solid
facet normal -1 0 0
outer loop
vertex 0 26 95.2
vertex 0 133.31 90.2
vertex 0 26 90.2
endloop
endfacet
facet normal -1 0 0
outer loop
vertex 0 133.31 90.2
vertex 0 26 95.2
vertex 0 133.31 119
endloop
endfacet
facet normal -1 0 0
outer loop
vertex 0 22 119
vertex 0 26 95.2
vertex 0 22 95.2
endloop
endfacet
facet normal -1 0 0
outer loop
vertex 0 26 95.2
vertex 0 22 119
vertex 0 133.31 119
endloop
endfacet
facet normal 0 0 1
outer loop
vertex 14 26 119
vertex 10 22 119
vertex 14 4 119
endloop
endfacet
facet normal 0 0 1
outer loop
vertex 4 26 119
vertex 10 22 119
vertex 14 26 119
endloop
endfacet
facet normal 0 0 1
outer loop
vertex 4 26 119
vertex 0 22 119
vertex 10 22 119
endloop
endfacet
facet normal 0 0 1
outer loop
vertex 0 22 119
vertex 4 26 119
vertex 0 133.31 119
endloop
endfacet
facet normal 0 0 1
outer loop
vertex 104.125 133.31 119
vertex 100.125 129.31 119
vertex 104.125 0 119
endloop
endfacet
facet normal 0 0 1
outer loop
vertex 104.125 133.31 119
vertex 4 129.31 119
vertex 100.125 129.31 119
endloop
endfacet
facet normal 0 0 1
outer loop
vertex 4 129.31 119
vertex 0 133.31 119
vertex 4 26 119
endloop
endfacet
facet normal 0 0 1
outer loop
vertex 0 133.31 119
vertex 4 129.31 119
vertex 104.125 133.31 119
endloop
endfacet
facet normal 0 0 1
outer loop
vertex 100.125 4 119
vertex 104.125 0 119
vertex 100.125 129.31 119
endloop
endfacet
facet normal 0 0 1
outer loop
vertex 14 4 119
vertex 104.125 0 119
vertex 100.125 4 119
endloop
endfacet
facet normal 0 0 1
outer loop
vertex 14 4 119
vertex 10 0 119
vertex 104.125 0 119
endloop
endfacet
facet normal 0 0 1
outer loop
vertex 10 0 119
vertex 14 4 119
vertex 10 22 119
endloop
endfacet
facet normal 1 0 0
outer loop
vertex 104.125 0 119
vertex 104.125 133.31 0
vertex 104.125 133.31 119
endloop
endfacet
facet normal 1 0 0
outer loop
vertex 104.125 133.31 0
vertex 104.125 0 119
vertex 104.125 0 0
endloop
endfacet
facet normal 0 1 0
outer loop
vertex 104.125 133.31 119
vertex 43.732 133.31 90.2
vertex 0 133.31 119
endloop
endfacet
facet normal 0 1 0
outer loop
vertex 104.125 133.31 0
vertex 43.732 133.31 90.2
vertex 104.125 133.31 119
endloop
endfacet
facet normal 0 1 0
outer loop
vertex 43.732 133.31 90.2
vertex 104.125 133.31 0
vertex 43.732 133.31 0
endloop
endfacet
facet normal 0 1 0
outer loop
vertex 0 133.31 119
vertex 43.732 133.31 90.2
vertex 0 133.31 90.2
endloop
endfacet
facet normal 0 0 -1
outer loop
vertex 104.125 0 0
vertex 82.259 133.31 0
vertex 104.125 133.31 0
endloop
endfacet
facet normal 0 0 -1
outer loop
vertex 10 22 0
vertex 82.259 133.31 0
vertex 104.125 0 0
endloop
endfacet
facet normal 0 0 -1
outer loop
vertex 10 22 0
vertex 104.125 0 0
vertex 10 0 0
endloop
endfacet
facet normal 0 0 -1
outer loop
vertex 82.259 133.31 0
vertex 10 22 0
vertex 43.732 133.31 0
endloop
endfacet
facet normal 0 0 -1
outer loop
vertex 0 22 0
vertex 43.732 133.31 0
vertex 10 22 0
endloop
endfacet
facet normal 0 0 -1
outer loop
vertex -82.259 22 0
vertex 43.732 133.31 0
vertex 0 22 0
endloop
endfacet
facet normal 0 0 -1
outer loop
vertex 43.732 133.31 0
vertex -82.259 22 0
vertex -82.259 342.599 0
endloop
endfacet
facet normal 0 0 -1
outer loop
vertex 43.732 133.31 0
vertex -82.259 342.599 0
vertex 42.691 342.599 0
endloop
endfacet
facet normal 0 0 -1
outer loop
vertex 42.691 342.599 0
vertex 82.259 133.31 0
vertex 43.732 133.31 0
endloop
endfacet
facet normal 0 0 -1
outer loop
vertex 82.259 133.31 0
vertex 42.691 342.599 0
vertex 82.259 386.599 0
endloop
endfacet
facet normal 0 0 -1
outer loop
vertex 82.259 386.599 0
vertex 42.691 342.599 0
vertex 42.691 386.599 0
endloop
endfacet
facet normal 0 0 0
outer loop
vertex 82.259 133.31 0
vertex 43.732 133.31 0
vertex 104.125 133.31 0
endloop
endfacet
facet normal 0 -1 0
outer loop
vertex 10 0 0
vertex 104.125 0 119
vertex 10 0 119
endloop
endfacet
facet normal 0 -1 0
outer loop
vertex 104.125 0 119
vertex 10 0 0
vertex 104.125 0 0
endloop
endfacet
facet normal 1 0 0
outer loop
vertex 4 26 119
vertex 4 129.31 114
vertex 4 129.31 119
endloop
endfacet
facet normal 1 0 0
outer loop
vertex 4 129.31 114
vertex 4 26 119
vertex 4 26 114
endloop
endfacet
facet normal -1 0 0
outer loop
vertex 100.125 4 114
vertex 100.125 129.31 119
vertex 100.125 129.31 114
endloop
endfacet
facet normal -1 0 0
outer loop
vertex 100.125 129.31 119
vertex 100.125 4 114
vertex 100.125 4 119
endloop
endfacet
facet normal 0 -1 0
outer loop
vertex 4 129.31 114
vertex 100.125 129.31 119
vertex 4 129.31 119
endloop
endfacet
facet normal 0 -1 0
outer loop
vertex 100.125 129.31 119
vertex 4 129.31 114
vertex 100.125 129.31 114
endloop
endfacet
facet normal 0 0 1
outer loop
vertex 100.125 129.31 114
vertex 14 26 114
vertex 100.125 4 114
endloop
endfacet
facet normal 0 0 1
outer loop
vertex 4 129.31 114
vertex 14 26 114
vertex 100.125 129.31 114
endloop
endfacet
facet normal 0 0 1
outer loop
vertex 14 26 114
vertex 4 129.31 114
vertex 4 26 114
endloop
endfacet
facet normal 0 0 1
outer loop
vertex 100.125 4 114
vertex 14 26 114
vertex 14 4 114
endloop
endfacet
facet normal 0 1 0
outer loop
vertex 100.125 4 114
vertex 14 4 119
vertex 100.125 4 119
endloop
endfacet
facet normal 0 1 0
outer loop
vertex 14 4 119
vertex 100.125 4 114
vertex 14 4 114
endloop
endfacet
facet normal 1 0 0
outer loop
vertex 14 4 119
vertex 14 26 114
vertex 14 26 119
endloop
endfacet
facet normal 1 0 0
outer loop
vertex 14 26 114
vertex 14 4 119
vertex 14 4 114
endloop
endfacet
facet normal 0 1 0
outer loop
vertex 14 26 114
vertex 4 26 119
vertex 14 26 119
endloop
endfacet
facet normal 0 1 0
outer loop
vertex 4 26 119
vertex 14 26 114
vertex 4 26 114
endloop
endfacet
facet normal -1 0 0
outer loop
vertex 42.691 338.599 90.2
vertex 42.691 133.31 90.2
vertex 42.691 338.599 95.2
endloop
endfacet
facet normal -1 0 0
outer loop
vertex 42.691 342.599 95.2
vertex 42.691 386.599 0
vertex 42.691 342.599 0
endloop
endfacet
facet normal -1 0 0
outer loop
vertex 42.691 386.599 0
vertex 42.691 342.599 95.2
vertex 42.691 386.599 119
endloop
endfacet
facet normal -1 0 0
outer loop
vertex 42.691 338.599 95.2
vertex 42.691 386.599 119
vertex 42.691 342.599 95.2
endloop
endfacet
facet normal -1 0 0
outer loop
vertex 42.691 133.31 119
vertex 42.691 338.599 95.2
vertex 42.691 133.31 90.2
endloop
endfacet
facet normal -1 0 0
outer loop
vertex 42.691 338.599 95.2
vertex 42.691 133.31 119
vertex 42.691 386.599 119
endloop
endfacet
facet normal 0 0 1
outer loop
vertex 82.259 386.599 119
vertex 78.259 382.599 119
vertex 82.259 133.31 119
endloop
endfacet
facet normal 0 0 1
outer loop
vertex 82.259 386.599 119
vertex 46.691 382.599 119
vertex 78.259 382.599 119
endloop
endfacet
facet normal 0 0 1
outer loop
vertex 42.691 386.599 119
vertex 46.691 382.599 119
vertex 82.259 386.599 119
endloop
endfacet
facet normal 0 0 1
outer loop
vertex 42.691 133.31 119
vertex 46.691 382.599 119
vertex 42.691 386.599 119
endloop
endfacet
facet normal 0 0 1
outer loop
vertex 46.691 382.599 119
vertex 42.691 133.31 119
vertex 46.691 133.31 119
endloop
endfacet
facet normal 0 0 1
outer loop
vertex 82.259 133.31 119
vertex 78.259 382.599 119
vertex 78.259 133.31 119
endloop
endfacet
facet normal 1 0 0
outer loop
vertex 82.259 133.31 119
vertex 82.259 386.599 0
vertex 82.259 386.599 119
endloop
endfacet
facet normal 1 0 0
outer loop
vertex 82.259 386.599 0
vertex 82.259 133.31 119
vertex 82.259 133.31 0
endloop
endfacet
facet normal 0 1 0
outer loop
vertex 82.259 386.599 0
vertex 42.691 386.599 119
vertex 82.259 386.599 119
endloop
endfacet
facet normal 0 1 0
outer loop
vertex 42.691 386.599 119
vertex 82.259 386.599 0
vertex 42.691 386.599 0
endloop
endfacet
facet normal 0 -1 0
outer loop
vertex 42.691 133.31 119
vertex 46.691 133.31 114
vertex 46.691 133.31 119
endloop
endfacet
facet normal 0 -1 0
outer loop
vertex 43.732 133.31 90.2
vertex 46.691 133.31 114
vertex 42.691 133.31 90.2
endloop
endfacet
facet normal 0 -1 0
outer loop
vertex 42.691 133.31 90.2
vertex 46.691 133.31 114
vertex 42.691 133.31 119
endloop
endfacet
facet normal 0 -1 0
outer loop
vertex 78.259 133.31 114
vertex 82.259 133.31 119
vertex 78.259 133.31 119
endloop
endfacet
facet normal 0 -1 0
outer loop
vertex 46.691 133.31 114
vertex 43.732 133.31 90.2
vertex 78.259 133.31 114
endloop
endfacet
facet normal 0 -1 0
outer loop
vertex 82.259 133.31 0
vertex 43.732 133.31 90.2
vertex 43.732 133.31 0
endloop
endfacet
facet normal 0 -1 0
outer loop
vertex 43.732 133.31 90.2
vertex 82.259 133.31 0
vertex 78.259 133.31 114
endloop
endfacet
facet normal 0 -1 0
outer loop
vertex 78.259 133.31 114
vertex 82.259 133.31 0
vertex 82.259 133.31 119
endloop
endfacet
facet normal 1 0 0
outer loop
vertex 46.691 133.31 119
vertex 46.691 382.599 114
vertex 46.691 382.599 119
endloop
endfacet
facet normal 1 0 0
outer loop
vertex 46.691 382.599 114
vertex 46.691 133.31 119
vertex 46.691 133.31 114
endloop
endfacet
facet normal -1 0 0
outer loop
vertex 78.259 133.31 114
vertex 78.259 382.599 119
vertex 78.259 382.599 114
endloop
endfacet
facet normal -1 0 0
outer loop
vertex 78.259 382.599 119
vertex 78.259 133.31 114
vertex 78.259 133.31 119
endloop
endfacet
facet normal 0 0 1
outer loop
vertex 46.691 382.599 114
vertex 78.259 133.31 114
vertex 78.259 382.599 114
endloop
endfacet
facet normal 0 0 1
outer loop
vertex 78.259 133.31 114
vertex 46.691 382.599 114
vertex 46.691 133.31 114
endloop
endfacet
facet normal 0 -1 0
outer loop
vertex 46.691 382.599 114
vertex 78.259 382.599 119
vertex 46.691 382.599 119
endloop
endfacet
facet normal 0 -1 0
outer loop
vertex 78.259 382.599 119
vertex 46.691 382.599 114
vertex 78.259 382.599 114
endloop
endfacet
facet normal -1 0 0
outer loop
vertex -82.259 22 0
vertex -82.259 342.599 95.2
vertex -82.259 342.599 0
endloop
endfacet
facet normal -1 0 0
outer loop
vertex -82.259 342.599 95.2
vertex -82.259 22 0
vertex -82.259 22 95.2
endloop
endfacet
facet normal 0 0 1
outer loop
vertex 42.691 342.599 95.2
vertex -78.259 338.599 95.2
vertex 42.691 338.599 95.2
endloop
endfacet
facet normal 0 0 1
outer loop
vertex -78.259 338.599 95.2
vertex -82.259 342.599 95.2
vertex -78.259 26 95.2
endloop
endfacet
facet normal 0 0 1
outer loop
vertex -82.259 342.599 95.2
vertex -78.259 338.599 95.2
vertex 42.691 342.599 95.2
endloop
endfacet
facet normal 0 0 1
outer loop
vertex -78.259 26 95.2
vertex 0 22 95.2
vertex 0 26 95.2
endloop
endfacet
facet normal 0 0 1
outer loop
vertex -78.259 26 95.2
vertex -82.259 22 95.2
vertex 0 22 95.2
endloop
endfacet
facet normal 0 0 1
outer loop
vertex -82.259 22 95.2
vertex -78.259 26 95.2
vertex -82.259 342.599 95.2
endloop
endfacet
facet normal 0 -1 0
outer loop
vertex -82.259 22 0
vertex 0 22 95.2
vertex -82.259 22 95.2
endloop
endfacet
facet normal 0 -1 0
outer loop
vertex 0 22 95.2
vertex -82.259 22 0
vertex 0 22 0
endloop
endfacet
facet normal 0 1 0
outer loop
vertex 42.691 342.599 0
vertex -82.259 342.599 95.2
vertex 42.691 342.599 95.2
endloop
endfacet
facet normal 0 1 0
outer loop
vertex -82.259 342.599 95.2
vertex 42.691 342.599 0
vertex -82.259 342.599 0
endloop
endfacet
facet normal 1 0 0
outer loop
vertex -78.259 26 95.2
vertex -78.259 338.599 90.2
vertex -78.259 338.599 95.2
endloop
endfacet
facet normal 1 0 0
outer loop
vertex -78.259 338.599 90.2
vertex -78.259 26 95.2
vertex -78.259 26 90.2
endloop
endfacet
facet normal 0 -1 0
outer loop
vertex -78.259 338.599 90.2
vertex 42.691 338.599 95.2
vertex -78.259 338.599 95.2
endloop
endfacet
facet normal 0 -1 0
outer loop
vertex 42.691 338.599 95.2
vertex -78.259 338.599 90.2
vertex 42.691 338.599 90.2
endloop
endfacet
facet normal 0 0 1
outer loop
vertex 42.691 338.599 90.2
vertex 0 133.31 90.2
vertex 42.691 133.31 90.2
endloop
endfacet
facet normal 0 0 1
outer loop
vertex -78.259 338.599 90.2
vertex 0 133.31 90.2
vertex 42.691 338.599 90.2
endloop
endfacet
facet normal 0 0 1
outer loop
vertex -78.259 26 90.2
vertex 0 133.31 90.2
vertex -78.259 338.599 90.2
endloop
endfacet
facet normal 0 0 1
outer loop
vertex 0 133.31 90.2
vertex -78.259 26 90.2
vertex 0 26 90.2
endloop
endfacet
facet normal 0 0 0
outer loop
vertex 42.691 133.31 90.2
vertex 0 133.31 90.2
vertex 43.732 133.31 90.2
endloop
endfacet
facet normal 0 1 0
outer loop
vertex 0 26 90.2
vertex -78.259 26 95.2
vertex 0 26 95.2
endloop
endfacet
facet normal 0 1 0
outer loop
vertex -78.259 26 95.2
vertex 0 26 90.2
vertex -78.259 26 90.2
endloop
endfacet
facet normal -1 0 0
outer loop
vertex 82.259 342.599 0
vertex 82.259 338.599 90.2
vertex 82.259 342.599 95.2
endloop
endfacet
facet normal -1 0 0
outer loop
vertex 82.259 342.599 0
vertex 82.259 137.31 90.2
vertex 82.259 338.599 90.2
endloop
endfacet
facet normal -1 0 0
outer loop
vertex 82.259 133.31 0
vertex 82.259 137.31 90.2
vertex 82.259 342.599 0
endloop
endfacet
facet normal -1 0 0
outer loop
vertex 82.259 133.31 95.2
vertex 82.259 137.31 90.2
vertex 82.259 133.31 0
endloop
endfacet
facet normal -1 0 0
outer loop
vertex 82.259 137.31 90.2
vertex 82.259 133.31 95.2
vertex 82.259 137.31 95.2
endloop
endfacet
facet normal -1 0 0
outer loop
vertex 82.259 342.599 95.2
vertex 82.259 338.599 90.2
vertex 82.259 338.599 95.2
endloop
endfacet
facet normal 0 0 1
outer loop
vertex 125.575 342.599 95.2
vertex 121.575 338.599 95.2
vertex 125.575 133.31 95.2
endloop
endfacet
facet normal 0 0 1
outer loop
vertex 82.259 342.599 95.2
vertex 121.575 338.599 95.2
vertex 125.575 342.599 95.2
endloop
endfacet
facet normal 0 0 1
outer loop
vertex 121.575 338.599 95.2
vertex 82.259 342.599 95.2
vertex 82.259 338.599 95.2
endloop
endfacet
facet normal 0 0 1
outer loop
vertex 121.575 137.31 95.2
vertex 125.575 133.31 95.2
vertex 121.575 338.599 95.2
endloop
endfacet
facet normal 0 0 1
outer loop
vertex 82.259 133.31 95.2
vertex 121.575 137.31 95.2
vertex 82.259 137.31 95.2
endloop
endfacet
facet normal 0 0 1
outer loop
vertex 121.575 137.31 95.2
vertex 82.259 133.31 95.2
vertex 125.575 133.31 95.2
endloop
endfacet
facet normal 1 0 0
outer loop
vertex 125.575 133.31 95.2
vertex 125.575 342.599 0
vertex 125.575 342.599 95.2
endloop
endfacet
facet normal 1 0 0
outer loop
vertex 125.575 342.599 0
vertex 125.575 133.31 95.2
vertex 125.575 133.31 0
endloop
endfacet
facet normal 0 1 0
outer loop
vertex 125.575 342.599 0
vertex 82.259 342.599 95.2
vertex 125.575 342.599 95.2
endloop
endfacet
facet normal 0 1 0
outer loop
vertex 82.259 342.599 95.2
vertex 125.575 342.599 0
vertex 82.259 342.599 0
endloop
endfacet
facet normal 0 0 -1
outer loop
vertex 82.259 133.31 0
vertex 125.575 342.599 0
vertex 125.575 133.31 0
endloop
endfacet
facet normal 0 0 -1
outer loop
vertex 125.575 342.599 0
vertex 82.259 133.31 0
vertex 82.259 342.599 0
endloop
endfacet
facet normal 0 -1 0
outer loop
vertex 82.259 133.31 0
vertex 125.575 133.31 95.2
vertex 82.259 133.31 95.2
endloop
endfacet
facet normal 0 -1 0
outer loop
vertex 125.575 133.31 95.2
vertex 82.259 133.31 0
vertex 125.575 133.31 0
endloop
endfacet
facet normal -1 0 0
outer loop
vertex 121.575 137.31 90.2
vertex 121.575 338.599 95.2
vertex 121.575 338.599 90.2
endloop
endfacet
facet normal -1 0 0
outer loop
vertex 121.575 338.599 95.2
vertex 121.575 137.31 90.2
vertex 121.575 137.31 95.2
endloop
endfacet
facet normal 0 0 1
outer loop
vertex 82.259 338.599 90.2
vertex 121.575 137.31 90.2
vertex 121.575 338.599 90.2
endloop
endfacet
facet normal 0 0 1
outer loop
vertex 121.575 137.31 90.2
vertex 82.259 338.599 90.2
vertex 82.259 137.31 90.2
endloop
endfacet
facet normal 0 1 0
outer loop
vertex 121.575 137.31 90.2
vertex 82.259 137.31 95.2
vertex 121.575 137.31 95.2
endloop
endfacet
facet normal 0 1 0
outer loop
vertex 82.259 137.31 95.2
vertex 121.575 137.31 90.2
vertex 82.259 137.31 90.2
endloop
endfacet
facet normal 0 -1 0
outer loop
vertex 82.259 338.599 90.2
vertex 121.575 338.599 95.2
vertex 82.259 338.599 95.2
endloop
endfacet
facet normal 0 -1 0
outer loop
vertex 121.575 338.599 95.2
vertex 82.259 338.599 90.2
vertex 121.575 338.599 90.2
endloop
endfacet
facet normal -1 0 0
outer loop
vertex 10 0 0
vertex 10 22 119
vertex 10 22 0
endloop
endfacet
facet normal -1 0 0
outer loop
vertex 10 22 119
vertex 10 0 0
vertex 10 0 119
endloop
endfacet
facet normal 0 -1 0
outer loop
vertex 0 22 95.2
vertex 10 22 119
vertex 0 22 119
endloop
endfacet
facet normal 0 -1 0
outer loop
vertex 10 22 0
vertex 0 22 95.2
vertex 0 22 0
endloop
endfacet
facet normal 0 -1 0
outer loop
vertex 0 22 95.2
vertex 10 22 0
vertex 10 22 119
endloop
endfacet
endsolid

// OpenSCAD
height = 119;
faceWidth = 104.125;
faceDepth = 133.31;
spineDepth = faceDepth * 1.90;
spineWidth = faceWidth * 0.38;
spineOffset = faceWidth * 0.41;
stackRadius = 22;
stackRadiusTop = 15;
stackHeight = height * 3.683229814;
capHeight = height * 0.1552795031;

sideHeight = height*.8;
leftWidth = faceWidth * 1.21;
rightWidth = faceWidth * .416;

crownWidth = 4;
crownHeight = 5;

//cube(size=[width, depth, height], center=false);
//translate([-width * leftWidthScale, 0, 0]) 
//	#cube(size=[width*leftWidthScale, depth, height], center=false);

difference(){
	coreStructure();
		cube(size=[10, stackRadius, height], center=false);
}

module coreStructure(){
	union(){
		faceBuilding();
		translate([spineOffset, faceDepth, 0]) 
			spine();
		// translate([spineOffset - stackRadius, faceDepth + spineDepth-stackRadius, 0]) 
		// 	stack();
		// translate([spineOffset + spineWidth+ stackRadius , faceDepth + spineDepth-stackRadius, 0]) 
		// 	stack();
		translate([-spineOffset - spineWidth, stackRadius, 0]) 
			leftBuilding();
		translate([+spineOffset + spineWidth, faceDepth, 0]) 
			rightBuilding();
	}
}

module faceBuilding(){
	union(){
		difference(){
			cube(size=[faceWidth, faceDepth, height], center=false);
			translate([crownWidth, crownWidth, height-crownHeight]) 
				cube(size=[faceWidth-crownWidth*2, faceDepth-crownWidth*2, crownHeight*2], center=false);		
		}
		translate([crownWidth, crownWidth, 0]) 
				cube(size=[10, stackRadius, height], center=false);
	}
}

module spine(){
	difference(){
		cube(size=[spineWidth, spineDepth, height], center=false);	
		translate([crownWidth, 0, height-crownHeight]) 
			cube(size=[spineWidth-crownWidth*2, spineDepth-crownWidth, crownHeight*2], center=false);	
	}
}
module stack(){
	difference(){
		union(){		
			cylinder(r1=stackRadius, h=stackHeight-capHeight, r2=stackRadius*.6, center=false);
			translate([0, 0, stackHeight-capHeight]) 
				cylinder(r1=stackRadius*.6, h=capHeight, r2=stackRadiusTop, center=false);
		}
		translate([0, 0, stackHeight-capHeight*2])
			#cylinder(r=stackRadius*.5, h=capHeight*2,center=false);		
	}
}

module leftBuilding(){
	difference(){
		cube(size=[leftWidth, (faceDepth + spineDepth) - stackRadius*3, sideHeight], center=false);	
		translate([crownWidth, crownWidth, sideHeight-crownHeight]) 
			cube(size=[leftWidth-crownWidth, ((faceDepth + spineDepth) - stackRadius*3) - crownWidth * 2, crownHeight * 2], center=false);	
	}
}

module rightBuilding(){
	difference(){
		cube(size=[rightWidth, spineDepth - stackRadius * 2, sideHeight], center = false);
		translate([0, crownWidth, sideHeight-crownHeight]) 
			cube(size=[rightWidth-crownWidth, (spineDepth - stackRadius * 2) - crownWidth * 2, crownHeight*2], center = false);
	}
}
